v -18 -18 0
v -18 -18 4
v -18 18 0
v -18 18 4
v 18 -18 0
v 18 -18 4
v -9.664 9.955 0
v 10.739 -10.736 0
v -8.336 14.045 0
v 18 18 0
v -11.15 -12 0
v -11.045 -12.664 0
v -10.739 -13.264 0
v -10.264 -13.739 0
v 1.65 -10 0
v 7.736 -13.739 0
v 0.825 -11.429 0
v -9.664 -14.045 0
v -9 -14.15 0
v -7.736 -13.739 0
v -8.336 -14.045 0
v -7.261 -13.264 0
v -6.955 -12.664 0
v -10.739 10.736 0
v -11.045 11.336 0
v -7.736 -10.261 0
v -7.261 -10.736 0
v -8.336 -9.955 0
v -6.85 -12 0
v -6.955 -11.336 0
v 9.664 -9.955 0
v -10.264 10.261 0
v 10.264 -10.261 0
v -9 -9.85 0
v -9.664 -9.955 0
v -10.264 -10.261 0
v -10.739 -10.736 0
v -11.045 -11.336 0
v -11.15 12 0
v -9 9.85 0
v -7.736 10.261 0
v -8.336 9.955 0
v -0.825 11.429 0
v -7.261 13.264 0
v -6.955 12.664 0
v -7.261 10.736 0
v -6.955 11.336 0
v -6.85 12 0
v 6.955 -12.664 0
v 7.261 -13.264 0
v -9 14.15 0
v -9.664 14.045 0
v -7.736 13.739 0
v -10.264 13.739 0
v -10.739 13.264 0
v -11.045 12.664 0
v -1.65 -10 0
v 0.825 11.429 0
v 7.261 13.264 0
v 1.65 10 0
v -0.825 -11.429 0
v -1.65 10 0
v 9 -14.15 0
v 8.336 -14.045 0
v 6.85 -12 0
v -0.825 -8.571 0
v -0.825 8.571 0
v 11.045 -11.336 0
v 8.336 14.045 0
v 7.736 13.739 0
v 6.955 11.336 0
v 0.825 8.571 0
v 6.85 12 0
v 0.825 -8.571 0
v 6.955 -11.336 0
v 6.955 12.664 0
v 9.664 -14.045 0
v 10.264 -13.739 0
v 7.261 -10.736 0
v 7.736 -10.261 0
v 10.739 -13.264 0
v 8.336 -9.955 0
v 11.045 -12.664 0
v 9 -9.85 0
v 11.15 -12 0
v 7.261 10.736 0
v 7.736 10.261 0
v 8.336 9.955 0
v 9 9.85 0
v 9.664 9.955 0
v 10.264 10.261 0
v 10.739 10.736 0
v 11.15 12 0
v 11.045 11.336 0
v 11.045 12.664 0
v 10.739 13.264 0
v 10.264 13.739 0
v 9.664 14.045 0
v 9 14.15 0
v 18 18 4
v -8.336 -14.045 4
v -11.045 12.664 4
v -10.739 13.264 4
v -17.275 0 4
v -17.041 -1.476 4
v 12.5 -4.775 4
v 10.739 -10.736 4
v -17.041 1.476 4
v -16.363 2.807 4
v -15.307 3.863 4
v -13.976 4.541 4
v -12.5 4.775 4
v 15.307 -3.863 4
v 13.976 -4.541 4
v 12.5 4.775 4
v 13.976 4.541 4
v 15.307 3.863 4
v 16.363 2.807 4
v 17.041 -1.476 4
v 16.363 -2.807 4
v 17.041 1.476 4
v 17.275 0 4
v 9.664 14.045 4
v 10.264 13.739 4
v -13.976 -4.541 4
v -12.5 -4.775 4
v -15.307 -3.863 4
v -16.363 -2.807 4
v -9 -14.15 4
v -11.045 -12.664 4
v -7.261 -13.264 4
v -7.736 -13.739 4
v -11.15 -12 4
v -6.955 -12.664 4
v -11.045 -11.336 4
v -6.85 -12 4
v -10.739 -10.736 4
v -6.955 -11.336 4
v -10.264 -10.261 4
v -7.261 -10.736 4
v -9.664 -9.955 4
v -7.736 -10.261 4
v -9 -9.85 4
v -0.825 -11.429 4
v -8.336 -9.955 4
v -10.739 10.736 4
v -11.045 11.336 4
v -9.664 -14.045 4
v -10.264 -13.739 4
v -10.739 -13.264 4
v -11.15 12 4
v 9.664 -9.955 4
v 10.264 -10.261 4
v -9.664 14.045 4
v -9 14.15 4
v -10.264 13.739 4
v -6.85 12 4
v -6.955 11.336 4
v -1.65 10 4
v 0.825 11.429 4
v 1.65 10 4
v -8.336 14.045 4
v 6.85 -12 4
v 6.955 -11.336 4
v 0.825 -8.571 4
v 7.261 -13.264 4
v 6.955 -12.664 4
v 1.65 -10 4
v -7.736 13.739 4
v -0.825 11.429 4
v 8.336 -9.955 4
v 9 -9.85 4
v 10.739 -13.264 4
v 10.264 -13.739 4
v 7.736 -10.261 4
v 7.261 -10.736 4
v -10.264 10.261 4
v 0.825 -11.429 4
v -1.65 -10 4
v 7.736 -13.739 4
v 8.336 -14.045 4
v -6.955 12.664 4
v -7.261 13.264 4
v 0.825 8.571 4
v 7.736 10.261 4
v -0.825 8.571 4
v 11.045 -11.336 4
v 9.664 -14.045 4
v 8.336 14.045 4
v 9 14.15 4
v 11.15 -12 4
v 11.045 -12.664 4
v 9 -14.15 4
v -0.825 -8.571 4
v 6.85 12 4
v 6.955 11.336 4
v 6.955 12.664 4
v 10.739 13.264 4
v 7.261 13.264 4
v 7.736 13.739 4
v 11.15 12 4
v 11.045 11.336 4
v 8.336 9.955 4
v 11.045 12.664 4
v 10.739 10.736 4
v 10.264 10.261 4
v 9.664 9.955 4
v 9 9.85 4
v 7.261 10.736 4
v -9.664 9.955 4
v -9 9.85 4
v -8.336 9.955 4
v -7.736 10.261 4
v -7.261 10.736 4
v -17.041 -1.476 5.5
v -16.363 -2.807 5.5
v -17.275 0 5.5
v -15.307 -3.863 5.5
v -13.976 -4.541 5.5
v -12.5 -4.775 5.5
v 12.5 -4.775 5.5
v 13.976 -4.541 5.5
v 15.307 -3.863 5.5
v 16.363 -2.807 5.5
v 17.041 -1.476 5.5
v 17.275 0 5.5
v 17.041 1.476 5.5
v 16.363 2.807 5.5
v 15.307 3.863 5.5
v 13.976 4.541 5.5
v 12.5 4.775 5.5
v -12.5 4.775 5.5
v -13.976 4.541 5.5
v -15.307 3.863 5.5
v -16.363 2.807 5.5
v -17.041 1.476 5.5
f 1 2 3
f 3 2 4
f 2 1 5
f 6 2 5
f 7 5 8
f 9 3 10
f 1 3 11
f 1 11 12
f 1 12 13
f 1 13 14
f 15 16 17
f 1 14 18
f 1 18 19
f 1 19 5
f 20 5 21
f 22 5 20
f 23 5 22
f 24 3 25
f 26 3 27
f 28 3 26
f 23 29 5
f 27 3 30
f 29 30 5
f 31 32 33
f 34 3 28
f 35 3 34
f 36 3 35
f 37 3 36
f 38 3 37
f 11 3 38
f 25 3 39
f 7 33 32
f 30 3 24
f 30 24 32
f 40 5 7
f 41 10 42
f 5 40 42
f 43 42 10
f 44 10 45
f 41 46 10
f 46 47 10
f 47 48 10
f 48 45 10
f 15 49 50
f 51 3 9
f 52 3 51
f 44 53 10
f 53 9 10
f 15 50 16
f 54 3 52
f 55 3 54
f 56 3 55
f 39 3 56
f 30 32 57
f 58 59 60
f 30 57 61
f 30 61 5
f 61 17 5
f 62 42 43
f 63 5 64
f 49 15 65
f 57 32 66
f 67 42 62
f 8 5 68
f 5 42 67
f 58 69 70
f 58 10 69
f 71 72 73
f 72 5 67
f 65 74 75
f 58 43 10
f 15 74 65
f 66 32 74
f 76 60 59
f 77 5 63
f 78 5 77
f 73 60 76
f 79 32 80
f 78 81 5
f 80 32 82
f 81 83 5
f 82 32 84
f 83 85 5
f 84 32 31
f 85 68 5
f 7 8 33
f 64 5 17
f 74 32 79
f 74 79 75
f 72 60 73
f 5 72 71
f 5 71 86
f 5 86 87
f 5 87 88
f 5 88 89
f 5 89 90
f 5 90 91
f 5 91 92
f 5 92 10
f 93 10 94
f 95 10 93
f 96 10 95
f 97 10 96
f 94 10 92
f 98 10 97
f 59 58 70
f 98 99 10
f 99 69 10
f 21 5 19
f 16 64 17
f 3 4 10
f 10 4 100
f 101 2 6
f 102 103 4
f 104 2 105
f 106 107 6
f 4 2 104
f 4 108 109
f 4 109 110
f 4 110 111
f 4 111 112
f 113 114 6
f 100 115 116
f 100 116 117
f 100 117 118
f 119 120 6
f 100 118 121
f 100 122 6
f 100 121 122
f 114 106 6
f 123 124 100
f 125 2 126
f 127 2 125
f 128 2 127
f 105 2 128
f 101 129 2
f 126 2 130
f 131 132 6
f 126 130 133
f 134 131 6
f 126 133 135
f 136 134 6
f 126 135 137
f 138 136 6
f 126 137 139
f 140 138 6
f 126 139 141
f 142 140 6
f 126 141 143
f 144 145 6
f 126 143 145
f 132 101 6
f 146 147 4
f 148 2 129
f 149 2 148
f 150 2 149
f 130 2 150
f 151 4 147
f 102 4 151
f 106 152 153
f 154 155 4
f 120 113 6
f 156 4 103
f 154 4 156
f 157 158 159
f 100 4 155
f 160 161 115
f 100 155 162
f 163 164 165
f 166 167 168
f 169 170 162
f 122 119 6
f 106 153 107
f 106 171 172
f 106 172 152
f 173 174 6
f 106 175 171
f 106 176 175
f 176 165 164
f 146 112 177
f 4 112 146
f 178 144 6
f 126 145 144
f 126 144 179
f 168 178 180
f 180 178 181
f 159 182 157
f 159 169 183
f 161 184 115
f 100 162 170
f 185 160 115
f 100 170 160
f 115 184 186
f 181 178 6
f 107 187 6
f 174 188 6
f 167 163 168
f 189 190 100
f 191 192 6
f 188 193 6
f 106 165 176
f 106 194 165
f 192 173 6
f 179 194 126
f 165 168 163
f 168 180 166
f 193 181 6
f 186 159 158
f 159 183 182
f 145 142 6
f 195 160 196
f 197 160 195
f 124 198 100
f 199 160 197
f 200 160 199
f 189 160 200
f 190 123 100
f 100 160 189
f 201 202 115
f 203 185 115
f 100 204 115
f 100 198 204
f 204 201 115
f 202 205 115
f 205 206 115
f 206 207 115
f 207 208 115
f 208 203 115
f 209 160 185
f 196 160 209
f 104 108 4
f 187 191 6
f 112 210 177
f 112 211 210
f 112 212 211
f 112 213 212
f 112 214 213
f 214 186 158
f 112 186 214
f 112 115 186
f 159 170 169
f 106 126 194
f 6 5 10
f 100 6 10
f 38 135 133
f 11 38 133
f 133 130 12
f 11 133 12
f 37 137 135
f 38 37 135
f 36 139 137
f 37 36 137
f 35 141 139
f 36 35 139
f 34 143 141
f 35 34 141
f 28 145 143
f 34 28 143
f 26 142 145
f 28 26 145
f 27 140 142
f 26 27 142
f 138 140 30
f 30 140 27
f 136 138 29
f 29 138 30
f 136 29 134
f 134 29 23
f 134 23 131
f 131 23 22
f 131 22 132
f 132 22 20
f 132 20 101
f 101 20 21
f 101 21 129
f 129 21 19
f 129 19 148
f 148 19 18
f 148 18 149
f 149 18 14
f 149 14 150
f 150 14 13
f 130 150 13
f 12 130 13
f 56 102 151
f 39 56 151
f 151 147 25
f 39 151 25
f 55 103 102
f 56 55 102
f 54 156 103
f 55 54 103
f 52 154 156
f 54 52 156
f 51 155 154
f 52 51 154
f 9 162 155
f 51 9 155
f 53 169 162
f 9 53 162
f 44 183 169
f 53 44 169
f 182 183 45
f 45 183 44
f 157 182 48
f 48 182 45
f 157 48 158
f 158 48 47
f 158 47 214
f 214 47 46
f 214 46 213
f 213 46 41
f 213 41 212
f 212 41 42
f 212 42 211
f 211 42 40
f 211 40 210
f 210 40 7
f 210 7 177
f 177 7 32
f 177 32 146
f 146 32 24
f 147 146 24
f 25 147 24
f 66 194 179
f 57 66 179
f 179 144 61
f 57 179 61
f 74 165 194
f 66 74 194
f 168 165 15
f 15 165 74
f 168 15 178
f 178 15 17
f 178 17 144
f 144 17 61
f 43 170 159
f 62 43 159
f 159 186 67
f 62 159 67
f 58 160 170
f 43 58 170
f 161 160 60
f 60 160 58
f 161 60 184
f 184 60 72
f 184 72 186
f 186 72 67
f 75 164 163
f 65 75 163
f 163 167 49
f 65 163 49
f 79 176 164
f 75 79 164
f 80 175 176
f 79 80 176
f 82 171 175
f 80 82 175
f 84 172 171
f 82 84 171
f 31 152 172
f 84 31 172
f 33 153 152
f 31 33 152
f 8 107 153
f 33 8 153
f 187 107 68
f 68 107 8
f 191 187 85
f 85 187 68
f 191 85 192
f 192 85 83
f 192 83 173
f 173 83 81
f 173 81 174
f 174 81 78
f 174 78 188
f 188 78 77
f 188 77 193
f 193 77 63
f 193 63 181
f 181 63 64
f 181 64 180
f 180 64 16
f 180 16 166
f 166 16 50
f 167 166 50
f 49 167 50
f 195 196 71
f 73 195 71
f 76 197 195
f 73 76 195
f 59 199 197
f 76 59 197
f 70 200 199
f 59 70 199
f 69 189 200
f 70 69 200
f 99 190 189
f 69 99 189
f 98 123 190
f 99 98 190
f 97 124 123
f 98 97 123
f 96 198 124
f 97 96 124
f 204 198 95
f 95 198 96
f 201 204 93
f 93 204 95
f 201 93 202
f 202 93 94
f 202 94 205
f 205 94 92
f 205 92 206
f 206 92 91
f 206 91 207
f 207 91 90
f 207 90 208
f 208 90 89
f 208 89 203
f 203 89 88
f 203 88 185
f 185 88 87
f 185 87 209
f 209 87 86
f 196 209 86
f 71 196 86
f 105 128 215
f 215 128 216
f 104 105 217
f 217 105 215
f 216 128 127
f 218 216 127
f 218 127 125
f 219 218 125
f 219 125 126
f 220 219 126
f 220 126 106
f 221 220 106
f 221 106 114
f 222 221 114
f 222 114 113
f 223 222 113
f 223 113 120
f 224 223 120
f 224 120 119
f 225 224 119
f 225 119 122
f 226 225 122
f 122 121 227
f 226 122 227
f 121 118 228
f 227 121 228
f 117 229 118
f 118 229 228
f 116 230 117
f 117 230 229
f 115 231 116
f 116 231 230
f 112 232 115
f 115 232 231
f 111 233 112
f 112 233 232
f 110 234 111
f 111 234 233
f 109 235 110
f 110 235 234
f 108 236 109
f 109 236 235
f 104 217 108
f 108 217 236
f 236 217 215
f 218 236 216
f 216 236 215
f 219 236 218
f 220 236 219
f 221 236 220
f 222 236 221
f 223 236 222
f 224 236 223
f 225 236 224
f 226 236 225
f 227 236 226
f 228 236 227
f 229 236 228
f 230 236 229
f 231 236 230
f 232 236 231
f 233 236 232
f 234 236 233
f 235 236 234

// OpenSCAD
/**
 * Martir.scad
 * 
 * Created by DViejo
 * 24 Nov 2014
 * 
 * Template for drilling M4 holes in i3 Y-plate for allocating a sc8uu bearing
 * 
 */

moebyus = 31/2;
standard = 10;
 
sideDist = standard;

shift = 0; //0 for standard, 6 for moebyus

module martir()
{
  difference()
  {
    union()
    {
      translate([-18, -18, 0]) cube([36+shift/3, 36, 4]);
      hull()
      {
	translate([-12.5, 0, 0]) cylinder(r=4.775, h=5.5, $fn=20);
	translate([12.5, 0, 0]) cylinder(r=4.775, h=5.5, $fn=20);
      }
    }
    
    for(i = [-1, 1])
    {
      translate([0, sideDist*i, -1]) cylinder(r=1.65, h=10);
      for(j = [-1, 1])
	#translate([9*i+shift, 12*j, -1]) cylinder(r=2.15, h=10, $fn=20);
    }
  }
}

martir();
